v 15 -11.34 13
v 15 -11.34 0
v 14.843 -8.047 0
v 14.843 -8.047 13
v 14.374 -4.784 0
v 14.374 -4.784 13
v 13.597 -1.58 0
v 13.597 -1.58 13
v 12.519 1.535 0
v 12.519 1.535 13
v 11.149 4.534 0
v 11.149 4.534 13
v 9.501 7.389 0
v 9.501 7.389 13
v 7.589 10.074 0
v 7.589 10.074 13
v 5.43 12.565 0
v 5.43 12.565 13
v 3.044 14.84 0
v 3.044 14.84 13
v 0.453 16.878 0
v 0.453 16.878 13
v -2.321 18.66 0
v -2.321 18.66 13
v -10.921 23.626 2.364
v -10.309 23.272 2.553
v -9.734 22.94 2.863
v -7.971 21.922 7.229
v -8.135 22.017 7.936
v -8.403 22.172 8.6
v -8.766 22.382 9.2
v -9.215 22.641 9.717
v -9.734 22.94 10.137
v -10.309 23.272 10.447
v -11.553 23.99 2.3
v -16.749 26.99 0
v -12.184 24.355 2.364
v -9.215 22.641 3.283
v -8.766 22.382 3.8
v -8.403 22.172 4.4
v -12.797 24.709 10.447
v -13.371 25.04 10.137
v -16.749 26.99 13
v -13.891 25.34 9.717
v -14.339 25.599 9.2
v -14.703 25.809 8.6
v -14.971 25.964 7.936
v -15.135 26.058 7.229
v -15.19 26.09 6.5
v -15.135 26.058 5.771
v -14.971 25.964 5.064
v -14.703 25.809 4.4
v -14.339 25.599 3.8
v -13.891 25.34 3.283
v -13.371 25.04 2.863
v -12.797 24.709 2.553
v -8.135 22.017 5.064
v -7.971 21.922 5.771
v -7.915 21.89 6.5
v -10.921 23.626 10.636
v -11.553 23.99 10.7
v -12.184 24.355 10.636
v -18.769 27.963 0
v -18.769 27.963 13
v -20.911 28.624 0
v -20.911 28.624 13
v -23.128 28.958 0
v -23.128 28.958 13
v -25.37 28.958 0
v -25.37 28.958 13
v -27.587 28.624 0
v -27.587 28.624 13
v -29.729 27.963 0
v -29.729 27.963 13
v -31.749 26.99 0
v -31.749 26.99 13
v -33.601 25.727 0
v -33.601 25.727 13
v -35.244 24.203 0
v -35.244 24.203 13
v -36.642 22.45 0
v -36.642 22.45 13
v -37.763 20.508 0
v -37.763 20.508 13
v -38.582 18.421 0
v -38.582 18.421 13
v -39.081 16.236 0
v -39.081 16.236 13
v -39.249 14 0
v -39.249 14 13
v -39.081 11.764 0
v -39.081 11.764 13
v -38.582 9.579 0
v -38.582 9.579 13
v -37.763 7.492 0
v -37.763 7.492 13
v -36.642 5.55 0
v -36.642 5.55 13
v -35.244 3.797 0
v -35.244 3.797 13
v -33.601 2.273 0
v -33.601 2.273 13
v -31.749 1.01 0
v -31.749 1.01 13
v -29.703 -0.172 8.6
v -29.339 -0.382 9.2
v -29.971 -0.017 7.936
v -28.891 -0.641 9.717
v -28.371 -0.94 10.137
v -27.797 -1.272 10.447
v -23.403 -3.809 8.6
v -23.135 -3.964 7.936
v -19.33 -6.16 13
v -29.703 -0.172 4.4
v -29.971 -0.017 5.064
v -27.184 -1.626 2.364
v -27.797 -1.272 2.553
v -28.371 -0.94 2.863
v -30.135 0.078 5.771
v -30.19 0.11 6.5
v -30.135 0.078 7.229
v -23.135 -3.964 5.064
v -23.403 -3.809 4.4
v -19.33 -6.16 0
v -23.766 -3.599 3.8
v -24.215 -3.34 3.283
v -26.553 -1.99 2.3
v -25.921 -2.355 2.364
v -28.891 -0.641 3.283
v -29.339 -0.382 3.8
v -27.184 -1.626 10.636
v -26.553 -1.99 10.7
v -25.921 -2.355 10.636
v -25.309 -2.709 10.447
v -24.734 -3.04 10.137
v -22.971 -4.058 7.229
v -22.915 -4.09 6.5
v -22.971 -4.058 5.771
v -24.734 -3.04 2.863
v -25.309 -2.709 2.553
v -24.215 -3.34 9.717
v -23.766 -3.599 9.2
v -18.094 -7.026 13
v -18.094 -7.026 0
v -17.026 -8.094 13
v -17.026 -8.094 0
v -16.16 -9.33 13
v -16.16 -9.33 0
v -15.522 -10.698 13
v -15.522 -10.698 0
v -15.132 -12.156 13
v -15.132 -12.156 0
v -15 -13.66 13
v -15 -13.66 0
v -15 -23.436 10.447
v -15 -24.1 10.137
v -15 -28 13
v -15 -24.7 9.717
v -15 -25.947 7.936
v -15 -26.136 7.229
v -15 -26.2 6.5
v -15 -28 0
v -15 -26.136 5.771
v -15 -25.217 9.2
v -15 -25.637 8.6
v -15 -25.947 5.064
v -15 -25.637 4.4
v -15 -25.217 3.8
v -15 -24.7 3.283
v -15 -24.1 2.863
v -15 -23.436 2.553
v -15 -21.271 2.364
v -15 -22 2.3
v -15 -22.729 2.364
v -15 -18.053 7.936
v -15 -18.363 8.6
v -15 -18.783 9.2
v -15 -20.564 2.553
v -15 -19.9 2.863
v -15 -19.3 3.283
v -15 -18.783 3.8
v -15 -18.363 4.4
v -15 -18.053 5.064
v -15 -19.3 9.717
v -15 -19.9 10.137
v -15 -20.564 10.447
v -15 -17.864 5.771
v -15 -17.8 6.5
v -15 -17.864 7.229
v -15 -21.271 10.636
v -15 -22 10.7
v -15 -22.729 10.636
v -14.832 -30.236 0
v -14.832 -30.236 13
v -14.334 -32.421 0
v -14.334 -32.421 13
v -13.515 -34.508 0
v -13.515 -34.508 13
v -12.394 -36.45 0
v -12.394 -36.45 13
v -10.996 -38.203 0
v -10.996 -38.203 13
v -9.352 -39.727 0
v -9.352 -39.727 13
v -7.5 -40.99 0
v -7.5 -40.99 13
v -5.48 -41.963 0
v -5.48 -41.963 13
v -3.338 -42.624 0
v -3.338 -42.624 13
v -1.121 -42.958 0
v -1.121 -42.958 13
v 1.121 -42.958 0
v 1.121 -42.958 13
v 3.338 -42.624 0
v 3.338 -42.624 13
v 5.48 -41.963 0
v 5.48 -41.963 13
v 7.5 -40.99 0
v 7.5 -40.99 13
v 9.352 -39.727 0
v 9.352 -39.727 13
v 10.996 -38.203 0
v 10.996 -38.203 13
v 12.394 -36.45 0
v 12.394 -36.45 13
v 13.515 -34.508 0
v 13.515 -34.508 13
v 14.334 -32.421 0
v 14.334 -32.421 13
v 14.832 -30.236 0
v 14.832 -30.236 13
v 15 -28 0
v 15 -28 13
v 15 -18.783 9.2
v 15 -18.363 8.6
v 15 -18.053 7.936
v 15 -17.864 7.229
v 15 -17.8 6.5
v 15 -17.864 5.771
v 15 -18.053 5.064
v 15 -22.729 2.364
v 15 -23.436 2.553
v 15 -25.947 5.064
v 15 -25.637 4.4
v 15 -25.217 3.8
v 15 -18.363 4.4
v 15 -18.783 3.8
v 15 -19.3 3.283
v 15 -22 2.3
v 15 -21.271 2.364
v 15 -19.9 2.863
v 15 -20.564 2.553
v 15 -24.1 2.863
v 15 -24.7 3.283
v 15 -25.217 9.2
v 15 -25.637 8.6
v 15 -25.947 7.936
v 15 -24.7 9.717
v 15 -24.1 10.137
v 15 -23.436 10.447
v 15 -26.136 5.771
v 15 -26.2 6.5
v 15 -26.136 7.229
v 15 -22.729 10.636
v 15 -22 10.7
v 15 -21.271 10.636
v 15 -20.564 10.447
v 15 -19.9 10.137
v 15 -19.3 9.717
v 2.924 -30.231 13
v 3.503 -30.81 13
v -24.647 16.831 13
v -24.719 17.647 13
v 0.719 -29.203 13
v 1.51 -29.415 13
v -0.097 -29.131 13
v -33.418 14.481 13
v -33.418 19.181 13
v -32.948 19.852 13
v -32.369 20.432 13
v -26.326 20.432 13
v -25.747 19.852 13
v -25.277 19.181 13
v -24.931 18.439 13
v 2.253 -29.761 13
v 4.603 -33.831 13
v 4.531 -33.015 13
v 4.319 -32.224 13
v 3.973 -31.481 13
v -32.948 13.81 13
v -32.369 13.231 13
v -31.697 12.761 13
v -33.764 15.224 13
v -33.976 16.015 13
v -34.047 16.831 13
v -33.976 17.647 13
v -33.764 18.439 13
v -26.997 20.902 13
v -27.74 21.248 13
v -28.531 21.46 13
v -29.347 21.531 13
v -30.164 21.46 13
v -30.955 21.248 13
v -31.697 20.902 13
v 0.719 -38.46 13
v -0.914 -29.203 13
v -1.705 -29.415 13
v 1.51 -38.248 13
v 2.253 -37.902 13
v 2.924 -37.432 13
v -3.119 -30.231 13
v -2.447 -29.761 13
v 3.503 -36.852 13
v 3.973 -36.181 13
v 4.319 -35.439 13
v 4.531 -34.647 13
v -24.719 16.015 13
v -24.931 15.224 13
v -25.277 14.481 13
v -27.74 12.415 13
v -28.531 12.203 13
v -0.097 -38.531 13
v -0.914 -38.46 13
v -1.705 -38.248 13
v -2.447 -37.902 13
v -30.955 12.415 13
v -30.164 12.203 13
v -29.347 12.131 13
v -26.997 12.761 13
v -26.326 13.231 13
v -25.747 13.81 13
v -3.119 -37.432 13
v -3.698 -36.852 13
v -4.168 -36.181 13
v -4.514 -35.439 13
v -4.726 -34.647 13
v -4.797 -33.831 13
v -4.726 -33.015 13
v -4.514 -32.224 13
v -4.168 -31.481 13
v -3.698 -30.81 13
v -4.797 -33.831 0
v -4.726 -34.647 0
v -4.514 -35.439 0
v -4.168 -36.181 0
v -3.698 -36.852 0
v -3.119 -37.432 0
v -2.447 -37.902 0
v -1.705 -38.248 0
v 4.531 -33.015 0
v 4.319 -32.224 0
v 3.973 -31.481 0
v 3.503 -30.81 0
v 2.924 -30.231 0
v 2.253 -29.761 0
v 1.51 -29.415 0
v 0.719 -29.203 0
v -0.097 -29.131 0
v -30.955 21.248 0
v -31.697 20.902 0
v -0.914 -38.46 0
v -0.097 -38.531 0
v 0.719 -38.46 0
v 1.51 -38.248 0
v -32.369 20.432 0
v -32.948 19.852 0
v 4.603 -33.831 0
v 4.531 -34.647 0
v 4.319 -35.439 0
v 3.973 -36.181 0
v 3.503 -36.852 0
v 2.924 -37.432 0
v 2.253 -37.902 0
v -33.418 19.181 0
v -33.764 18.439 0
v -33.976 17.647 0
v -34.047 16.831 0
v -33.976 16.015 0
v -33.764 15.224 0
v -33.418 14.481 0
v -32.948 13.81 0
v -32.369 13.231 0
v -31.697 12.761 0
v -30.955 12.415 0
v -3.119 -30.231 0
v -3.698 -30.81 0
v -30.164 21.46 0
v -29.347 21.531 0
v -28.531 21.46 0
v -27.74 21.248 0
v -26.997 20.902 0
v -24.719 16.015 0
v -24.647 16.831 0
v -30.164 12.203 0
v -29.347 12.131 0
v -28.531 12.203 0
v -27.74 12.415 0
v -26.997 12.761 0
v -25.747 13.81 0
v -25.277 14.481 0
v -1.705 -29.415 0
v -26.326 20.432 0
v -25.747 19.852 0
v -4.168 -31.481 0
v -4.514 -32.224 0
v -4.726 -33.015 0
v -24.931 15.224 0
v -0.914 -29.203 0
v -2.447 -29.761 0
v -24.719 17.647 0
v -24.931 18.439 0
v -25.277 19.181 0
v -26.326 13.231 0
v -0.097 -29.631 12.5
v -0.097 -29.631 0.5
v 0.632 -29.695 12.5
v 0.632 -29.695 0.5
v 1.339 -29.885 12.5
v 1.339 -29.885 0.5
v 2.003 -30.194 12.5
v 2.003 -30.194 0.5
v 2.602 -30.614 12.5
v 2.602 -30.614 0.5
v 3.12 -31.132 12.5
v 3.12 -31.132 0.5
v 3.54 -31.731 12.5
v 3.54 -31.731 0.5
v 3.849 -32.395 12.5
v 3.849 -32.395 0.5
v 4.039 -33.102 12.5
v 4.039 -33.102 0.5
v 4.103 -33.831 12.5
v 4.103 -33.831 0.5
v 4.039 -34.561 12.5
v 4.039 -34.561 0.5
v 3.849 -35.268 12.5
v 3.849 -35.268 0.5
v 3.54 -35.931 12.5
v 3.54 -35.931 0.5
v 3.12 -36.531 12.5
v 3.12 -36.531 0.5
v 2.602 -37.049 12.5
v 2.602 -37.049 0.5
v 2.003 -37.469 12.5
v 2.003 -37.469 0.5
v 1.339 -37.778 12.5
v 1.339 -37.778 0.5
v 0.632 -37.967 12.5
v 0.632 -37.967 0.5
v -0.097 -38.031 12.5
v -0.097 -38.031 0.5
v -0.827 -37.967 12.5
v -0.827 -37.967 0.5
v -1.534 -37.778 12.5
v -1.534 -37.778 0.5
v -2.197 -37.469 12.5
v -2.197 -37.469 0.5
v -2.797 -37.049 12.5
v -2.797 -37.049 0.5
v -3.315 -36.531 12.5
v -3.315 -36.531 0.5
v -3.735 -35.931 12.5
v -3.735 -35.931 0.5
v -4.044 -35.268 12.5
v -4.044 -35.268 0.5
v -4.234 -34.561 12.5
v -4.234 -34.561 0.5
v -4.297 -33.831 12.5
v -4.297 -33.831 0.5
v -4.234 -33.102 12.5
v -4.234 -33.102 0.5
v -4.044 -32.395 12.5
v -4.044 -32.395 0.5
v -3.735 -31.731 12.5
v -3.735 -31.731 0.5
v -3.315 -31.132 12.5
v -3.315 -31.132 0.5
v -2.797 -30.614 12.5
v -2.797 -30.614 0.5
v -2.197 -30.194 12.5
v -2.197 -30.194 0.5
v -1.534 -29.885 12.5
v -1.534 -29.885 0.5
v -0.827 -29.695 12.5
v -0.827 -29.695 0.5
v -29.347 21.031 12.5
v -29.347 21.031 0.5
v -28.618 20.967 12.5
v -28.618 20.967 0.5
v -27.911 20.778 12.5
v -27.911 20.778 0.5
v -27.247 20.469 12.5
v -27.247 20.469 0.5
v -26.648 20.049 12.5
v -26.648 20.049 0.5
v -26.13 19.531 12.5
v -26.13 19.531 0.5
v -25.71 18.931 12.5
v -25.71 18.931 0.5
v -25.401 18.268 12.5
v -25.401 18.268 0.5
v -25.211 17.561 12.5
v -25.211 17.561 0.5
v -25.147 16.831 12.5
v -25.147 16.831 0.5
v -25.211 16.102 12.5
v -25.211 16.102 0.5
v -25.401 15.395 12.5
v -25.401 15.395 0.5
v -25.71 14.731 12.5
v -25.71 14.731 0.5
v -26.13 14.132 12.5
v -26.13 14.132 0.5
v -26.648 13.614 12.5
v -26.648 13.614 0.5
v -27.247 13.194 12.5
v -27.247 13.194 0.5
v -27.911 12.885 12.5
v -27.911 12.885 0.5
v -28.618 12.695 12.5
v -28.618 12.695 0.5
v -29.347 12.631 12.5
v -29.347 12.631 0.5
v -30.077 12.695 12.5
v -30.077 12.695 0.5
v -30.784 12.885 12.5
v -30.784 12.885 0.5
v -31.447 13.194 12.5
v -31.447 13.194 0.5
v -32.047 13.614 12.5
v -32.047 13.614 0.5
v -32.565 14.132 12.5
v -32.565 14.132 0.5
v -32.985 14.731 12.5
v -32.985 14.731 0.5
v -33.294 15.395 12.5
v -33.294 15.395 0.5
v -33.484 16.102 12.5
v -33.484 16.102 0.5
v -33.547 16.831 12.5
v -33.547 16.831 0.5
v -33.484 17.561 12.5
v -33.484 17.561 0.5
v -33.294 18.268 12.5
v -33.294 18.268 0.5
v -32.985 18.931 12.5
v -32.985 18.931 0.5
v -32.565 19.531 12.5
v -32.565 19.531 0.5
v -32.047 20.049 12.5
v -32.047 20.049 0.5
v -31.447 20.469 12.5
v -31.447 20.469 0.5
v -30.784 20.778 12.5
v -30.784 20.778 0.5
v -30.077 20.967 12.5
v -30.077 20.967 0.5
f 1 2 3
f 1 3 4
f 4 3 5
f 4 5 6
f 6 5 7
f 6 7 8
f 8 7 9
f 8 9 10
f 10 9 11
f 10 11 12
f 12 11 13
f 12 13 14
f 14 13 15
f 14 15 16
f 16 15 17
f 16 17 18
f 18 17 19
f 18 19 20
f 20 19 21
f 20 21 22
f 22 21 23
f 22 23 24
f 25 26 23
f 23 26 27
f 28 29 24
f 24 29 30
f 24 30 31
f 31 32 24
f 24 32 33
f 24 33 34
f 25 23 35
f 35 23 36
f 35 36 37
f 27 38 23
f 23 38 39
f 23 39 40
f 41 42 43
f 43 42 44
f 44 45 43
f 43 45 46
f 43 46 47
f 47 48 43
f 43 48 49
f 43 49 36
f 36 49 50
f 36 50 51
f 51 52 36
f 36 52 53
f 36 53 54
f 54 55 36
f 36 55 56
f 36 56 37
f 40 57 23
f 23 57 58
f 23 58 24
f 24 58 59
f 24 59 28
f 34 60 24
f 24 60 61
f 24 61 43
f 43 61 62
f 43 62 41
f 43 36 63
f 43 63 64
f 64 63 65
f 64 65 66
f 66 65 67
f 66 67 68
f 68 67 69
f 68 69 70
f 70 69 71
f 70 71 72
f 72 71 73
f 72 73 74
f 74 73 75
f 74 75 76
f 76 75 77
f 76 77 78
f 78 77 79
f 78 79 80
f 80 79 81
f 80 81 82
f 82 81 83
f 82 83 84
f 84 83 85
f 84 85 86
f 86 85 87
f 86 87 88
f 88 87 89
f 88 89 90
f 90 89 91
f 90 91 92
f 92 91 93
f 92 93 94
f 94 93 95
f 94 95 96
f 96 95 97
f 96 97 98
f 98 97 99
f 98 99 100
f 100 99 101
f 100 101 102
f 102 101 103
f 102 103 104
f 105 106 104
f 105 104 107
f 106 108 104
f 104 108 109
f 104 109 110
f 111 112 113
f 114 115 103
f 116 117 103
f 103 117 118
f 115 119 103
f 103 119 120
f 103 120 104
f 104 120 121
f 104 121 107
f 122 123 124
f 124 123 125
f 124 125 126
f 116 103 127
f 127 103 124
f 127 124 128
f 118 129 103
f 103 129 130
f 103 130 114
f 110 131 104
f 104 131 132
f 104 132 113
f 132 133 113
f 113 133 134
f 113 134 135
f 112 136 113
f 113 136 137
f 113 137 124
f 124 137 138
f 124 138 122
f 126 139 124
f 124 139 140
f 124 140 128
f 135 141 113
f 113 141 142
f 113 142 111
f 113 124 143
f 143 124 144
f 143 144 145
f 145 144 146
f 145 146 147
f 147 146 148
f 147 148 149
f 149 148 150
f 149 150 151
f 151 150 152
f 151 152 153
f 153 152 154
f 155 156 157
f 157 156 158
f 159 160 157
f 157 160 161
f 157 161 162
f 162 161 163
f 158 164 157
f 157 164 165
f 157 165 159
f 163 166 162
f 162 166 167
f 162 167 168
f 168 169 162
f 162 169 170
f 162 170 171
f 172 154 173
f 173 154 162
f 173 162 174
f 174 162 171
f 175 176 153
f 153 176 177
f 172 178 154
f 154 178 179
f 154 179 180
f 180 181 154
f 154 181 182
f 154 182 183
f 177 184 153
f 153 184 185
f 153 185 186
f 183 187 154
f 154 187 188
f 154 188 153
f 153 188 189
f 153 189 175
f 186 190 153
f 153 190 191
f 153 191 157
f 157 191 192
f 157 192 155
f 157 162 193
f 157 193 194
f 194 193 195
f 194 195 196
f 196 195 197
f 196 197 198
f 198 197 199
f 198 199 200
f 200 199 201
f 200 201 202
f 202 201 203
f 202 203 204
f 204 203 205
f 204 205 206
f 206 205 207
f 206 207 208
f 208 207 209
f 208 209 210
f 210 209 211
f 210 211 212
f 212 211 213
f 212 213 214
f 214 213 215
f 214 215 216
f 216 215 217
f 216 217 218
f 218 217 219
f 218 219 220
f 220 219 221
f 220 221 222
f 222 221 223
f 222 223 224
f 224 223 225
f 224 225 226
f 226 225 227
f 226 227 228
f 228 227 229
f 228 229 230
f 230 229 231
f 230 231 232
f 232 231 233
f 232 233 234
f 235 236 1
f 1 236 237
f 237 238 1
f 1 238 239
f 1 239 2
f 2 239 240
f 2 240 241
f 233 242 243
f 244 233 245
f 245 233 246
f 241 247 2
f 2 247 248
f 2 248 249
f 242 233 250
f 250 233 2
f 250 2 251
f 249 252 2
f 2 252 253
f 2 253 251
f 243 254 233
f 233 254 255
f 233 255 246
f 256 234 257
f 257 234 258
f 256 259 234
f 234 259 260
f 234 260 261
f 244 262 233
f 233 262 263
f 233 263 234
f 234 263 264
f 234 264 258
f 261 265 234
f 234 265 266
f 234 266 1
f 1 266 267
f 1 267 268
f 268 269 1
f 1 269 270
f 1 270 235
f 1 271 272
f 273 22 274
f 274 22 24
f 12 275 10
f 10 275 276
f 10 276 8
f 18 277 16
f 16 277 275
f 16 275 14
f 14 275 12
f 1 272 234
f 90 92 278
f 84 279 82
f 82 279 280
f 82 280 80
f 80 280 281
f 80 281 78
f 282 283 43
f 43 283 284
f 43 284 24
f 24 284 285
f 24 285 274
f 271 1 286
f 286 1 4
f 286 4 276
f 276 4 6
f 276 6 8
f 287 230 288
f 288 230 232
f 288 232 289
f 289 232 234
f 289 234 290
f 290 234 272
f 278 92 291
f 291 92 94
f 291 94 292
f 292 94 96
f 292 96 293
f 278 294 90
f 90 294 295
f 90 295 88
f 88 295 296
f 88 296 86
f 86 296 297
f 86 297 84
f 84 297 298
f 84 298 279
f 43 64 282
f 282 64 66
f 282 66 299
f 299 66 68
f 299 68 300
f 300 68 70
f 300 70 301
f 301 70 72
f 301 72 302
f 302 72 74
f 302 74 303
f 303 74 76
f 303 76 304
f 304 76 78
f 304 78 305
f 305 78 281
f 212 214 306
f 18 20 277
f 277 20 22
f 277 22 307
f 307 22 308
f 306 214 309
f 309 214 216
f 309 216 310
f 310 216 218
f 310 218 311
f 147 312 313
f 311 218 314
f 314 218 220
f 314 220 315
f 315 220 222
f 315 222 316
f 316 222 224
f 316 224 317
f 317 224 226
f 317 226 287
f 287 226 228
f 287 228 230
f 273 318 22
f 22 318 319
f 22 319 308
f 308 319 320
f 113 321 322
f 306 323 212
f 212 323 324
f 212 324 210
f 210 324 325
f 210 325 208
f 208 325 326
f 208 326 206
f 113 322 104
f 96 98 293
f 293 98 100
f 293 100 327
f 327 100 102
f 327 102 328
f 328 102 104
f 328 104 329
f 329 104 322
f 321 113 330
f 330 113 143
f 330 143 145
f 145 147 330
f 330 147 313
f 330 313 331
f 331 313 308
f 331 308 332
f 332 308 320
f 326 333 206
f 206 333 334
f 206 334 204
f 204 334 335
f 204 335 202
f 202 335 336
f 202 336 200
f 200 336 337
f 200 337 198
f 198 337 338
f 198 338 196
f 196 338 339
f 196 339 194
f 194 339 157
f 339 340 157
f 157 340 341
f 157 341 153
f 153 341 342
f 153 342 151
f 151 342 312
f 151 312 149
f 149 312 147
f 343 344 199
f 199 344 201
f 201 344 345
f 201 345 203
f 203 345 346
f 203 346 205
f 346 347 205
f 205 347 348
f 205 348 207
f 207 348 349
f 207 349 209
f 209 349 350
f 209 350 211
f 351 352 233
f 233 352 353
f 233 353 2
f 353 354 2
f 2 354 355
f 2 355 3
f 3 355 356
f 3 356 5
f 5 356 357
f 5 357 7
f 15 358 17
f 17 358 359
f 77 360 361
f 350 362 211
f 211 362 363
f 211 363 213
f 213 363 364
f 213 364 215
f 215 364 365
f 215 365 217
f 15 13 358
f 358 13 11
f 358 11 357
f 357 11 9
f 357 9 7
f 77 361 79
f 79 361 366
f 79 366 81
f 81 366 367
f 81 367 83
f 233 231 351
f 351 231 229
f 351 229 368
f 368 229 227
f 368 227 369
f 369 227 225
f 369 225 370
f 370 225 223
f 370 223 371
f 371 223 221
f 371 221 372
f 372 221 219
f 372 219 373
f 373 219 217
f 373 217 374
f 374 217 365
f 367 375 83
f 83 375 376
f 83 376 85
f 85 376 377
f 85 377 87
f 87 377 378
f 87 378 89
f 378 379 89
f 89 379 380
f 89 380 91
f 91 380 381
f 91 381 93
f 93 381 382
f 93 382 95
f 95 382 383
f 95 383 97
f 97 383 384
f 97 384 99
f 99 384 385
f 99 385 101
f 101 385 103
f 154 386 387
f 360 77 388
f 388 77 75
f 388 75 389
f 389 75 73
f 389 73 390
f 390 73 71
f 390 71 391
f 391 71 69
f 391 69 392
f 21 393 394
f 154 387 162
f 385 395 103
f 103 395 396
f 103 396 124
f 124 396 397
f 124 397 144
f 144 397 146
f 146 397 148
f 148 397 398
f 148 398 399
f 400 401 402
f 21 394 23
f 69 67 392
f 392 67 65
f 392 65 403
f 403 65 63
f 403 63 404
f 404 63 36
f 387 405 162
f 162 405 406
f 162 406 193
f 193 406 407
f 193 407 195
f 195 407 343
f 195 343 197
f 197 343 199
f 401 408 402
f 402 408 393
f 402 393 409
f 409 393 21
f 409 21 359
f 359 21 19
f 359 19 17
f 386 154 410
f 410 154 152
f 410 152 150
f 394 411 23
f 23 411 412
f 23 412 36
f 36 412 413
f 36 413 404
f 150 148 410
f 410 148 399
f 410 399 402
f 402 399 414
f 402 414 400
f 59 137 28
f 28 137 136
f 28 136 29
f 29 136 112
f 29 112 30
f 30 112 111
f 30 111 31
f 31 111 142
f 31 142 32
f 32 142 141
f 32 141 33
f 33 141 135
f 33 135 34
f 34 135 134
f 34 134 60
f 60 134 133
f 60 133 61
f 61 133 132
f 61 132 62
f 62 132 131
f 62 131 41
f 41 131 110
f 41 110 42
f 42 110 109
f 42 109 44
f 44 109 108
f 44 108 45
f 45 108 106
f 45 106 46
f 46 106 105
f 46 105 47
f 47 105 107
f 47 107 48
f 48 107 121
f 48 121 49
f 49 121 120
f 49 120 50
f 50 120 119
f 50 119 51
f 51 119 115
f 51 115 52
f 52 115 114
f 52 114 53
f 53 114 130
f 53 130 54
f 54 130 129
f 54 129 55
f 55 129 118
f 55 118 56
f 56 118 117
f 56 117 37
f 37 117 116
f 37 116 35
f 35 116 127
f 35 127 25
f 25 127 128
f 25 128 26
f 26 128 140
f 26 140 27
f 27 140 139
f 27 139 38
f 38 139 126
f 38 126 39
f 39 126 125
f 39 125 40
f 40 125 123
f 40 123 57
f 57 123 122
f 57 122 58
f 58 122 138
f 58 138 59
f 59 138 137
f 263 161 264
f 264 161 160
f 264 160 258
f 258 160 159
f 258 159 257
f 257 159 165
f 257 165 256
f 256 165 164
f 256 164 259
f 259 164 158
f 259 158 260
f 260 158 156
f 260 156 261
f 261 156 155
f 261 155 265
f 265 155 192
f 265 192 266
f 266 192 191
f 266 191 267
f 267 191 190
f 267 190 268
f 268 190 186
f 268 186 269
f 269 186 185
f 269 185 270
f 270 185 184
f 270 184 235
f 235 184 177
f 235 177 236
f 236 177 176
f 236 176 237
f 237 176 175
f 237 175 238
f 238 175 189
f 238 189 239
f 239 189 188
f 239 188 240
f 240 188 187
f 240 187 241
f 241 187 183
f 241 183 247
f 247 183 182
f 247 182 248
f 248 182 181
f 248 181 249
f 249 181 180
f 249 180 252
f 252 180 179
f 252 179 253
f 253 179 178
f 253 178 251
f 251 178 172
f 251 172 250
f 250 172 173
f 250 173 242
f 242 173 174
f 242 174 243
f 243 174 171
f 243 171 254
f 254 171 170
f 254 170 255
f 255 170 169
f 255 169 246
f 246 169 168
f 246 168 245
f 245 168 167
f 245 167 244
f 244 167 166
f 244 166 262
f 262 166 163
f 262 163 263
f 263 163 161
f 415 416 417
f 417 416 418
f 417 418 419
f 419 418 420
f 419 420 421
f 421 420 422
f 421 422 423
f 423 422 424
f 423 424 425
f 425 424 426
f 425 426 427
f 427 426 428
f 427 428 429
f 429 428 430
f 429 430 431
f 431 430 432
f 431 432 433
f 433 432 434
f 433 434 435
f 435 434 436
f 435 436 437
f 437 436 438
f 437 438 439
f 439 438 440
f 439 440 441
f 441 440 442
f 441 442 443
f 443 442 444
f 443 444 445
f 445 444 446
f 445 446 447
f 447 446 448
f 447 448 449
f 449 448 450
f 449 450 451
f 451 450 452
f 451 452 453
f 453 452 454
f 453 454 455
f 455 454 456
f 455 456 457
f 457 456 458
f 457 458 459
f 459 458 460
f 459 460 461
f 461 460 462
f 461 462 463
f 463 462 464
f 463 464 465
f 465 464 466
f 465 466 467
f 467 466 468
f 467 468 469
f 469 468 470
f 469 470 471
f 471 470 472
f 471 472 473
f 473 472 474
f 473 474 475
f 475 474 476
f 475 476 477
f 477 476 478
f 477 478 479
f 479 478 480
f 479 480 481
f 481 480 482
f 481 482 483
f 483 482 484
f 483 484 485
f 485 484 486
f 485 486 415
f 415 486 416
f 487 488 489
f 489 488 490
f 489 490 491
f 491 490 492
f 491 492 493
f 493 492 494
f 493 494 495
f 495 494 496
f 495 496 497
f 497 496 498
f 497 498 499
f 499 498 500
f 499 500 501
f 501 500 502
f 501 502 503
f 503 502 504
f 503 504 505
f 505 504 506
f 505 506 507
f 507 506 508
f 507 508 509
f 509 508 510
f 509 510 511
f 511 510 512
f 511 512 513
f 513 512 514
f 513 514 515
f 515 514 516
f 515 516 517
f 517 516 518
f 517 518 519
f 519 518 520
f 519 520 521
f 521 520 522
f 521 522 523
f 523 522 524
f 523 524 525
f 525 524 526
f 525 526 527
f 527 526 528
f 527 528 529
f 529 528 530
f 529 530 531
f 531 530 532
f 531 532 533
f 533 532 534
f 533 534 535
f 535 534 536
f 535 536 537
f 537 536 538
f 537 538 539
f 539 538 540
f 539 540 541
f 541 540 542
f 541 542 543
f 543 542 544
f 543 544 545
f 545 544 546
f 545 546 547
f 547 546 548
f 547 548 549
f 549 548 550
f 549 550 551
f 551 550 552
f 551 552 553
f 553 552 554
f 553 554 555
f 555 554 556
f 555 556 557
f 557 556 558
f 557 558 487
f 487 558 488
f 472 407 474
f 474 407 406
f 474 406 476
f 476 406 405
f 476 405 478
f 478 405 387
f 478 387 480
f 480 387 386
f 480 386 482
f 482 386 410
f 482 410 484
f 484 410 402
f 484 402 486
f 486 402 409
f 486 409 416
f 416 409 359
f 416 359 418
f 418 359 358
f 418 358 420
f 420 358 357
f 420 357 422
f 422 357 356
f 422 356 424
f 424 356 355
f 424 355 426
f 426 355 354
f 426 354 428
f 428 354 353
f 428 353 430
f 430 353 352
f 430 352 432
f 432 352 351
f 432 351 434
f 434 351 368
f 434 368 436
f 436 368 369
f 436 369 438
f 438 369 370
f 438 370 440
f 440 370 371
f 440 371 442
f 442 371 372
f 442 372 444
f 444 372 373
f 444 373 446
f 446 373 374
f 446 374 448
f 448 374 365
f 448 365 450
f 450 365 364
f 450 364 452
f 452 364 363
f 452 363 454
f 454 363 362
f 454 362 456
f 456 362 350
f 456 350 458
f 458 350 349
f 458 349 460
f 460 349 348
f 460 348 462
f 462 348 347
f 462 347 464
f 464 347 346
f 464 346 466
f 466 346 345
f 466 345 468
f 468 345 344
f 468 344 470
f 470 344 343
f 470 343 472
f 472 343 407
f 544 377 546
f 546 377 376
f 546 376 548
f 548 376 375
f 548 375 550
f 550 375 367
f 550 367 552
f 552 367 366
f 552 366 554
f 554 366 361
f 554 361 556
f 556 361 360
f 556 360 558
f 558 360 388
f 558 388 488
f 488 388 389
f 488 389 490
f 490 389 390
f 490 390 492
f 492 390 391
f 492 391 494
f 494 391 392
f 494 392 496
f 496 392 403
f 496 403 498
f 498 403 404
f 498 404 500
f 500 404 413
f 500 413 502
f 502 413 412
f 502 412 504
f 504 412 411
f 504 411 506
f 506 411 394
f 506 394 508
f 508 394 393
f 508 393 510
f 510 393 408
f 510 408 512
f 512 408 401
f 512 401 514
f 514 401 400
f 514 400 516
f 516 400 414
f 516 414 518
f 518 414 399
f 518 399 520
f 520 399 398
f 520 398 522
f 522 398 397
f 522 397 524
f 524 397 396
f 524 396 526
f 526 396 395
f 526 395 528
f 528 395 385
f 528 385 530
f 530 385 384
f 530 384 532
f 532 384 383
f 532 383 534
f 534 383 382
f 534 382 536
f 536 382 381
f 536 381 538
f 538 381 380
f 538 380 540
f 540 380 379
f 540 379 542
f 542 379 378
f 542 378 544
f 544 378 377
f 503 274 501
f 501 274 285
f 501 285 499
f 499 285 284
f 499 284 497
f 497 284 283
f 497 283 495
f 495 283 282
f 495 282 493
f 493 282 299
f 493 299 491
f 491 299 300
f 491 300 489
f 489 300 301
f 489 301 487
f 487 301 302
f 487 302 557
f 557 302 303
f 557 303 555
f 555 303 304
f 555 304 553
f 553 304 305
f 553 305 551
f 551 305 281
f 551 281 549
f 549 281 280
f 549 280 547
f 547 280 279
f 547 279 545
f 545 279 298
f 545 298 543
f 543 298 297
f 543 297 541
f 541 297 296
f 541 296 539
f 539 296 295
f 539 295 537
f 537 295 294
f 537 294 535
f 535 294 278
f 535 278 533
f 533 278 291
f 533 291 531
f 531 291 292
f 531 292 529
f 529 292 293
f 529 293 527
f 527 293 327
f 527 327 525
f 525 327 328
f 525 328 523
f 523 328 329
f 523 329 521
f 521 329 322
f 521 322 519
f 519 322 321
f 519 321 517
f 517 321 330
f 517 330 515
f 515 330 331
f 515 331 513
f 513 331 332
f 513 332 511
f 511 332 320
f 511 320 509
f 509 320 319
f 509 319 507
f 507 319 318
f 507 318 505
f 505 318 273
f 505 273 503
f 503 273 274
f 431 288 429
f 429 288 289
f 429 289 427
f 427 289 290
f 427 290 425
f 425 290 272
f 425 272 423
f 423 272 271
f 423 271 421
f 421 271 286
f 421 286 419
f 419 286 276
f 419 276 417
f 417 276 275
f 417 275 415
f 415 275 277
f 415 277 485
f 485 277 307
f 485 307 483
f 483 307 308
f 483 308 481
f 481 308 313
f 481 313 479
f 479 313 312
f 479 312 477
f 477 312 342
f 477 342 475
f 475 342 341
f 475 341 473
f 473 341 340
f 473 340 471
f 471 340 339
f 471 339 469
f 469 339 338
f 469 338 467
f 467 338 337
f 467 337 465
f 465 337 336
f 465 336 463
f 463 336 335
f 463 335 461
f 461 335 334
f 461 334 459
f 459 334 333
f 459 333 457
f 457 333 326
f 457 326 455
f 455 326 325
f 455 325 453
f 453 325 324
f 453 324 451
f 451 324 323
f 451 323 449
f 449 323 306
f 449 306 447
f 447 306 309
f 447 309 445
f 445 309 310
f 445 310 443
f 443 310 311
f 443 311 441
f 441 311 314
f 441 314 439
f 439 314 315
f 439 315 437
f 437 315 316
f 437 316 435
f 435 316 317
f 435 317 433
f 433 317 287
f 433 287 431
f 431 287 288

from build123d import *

# Parameters (mm, degrees)
BOSS_EXTRUDE1_DEPTH        = 13
CUT_EXTRUDE1_DEPTH         = 55.223360011
CUT_EXTRUDE2_DEPTH         = 55.01851513
F_8_4_8_4_DIAMETER_HOLE1_D = 8.4
CHAMFER2_SIZE              = 0.5


with BuildPart() as part:
    # Sketch1 → Boss-Extrude1 (new body)
    with BuildSketch(Plane(origin=(0, 0, 0), x_dir=(-1, 0, 0), z_dir=(0, 0, -1))):
        with BuildLine():
            Line((-14.999999535, -11.339745693), (-14.999999535, -27.999999731))
            ThreePointArc((-14.999999535, -27.999999731), (4.65e-07, -42.999999731), (15.000000465, -27.999999731))
            Line((15.000000465, -27.999999731), (15.000000465, -13.660253769))
            ThreePointArc((15.000000465, -13.660253769), (16.160254503, -9.33012675), (19.330127484, -6.160253769))
            Line((19.330127484, -6.160253769), (31.748711306, 1.009618943))
            ThreePointArc((31.748711306, 1.009618943), (37.239092363, 6.5), (39.248711306, 14))
            ThreePointArc((39.248711306, 14), (37.239092363, 21.5), (31.748711306, 26.990381057))
            ThreePointArc((31.748711306, 26.990381057), (24.248711306, 29), (16.748711306, 26.990381057))
            Line((16.748711306, 26.990381057), (2.320508541, 18.660254307))
            ThreePointArc((2.320508541, 18.660254307), (-10.358983383, 5.980762382), (-14.999999535, -11.339745693))
        make_face()
    extrude(amount=-BOSS_EXTRUDE1_DEPTH)

    # Sketch2 → Cut-Extrude1 (cut, through all)
    with BuildSketch(Plane(origin=(-7.5, -12.990381057, 0), x_dir=(0.8660254037844388, -0.4999999999999997, 0), z_dir=(-0.4999999999999997, -0.8660254037844388, 0))):
        with BuildLine():
            ThreePointArc((-25.021227161, 9.417565156), (-22, 2.3), (-18.978772839, 9.417565156))
            ThreePointArc((-18.978772839, 9.417565156), (-22, 10.7), (-25.021227161, 9.417565156))
        make_face()
    extrude(amount=-CUT_EXTRUDE1_DEPTH, mode=Mode.SUBTRACT)

    # Sketch3 → Cut-Extrude2 (cut, through all)
    with BuildSketch(Plane.ZY.offset(15.000000465)):
        with BuildLine():
            ThreePointArc((9.417565156, -18.978772839), (2.3, -22), (9.417565156, -25.021227161))
            ThreePointArc((9.417565156, -25.021227161), (10.7, -22), (9.417565156, -18.978772839))
        make_face()
    extrude(amount=-CUT_EXTRUDE2_DEPTH, mode=Mode.SUBTRACT)

    # Ø8.4 (8.4) Diameter Hole1 (through all)
    with Locations(Plane(origin=(0, 0, 0), x_dir=(-1, 0, 0), z_dir=(0, 0, -1))):
        with Locations((29.347432097, 16.831243464), (0.097432097, -33.831242658)):
            Hole(F_8_4_8_4_DIAMETER_HOLE1_D / 2)

    # Chamfer2
    chamfer2_edges = [part.edges().sort_by_distance(p)[0] for p in [
        (-4.297432097, -33.831242658, 0),
        (-4.297432097, -33.831242658, 13),
        (-33.547432097, 16.831243464, 0),
        (-33.547432097, 16.831243464, 13),
    ]]
    chamfer(chamfer2_edges, length=CHAMFER2_SIZE)


solid = part.part
